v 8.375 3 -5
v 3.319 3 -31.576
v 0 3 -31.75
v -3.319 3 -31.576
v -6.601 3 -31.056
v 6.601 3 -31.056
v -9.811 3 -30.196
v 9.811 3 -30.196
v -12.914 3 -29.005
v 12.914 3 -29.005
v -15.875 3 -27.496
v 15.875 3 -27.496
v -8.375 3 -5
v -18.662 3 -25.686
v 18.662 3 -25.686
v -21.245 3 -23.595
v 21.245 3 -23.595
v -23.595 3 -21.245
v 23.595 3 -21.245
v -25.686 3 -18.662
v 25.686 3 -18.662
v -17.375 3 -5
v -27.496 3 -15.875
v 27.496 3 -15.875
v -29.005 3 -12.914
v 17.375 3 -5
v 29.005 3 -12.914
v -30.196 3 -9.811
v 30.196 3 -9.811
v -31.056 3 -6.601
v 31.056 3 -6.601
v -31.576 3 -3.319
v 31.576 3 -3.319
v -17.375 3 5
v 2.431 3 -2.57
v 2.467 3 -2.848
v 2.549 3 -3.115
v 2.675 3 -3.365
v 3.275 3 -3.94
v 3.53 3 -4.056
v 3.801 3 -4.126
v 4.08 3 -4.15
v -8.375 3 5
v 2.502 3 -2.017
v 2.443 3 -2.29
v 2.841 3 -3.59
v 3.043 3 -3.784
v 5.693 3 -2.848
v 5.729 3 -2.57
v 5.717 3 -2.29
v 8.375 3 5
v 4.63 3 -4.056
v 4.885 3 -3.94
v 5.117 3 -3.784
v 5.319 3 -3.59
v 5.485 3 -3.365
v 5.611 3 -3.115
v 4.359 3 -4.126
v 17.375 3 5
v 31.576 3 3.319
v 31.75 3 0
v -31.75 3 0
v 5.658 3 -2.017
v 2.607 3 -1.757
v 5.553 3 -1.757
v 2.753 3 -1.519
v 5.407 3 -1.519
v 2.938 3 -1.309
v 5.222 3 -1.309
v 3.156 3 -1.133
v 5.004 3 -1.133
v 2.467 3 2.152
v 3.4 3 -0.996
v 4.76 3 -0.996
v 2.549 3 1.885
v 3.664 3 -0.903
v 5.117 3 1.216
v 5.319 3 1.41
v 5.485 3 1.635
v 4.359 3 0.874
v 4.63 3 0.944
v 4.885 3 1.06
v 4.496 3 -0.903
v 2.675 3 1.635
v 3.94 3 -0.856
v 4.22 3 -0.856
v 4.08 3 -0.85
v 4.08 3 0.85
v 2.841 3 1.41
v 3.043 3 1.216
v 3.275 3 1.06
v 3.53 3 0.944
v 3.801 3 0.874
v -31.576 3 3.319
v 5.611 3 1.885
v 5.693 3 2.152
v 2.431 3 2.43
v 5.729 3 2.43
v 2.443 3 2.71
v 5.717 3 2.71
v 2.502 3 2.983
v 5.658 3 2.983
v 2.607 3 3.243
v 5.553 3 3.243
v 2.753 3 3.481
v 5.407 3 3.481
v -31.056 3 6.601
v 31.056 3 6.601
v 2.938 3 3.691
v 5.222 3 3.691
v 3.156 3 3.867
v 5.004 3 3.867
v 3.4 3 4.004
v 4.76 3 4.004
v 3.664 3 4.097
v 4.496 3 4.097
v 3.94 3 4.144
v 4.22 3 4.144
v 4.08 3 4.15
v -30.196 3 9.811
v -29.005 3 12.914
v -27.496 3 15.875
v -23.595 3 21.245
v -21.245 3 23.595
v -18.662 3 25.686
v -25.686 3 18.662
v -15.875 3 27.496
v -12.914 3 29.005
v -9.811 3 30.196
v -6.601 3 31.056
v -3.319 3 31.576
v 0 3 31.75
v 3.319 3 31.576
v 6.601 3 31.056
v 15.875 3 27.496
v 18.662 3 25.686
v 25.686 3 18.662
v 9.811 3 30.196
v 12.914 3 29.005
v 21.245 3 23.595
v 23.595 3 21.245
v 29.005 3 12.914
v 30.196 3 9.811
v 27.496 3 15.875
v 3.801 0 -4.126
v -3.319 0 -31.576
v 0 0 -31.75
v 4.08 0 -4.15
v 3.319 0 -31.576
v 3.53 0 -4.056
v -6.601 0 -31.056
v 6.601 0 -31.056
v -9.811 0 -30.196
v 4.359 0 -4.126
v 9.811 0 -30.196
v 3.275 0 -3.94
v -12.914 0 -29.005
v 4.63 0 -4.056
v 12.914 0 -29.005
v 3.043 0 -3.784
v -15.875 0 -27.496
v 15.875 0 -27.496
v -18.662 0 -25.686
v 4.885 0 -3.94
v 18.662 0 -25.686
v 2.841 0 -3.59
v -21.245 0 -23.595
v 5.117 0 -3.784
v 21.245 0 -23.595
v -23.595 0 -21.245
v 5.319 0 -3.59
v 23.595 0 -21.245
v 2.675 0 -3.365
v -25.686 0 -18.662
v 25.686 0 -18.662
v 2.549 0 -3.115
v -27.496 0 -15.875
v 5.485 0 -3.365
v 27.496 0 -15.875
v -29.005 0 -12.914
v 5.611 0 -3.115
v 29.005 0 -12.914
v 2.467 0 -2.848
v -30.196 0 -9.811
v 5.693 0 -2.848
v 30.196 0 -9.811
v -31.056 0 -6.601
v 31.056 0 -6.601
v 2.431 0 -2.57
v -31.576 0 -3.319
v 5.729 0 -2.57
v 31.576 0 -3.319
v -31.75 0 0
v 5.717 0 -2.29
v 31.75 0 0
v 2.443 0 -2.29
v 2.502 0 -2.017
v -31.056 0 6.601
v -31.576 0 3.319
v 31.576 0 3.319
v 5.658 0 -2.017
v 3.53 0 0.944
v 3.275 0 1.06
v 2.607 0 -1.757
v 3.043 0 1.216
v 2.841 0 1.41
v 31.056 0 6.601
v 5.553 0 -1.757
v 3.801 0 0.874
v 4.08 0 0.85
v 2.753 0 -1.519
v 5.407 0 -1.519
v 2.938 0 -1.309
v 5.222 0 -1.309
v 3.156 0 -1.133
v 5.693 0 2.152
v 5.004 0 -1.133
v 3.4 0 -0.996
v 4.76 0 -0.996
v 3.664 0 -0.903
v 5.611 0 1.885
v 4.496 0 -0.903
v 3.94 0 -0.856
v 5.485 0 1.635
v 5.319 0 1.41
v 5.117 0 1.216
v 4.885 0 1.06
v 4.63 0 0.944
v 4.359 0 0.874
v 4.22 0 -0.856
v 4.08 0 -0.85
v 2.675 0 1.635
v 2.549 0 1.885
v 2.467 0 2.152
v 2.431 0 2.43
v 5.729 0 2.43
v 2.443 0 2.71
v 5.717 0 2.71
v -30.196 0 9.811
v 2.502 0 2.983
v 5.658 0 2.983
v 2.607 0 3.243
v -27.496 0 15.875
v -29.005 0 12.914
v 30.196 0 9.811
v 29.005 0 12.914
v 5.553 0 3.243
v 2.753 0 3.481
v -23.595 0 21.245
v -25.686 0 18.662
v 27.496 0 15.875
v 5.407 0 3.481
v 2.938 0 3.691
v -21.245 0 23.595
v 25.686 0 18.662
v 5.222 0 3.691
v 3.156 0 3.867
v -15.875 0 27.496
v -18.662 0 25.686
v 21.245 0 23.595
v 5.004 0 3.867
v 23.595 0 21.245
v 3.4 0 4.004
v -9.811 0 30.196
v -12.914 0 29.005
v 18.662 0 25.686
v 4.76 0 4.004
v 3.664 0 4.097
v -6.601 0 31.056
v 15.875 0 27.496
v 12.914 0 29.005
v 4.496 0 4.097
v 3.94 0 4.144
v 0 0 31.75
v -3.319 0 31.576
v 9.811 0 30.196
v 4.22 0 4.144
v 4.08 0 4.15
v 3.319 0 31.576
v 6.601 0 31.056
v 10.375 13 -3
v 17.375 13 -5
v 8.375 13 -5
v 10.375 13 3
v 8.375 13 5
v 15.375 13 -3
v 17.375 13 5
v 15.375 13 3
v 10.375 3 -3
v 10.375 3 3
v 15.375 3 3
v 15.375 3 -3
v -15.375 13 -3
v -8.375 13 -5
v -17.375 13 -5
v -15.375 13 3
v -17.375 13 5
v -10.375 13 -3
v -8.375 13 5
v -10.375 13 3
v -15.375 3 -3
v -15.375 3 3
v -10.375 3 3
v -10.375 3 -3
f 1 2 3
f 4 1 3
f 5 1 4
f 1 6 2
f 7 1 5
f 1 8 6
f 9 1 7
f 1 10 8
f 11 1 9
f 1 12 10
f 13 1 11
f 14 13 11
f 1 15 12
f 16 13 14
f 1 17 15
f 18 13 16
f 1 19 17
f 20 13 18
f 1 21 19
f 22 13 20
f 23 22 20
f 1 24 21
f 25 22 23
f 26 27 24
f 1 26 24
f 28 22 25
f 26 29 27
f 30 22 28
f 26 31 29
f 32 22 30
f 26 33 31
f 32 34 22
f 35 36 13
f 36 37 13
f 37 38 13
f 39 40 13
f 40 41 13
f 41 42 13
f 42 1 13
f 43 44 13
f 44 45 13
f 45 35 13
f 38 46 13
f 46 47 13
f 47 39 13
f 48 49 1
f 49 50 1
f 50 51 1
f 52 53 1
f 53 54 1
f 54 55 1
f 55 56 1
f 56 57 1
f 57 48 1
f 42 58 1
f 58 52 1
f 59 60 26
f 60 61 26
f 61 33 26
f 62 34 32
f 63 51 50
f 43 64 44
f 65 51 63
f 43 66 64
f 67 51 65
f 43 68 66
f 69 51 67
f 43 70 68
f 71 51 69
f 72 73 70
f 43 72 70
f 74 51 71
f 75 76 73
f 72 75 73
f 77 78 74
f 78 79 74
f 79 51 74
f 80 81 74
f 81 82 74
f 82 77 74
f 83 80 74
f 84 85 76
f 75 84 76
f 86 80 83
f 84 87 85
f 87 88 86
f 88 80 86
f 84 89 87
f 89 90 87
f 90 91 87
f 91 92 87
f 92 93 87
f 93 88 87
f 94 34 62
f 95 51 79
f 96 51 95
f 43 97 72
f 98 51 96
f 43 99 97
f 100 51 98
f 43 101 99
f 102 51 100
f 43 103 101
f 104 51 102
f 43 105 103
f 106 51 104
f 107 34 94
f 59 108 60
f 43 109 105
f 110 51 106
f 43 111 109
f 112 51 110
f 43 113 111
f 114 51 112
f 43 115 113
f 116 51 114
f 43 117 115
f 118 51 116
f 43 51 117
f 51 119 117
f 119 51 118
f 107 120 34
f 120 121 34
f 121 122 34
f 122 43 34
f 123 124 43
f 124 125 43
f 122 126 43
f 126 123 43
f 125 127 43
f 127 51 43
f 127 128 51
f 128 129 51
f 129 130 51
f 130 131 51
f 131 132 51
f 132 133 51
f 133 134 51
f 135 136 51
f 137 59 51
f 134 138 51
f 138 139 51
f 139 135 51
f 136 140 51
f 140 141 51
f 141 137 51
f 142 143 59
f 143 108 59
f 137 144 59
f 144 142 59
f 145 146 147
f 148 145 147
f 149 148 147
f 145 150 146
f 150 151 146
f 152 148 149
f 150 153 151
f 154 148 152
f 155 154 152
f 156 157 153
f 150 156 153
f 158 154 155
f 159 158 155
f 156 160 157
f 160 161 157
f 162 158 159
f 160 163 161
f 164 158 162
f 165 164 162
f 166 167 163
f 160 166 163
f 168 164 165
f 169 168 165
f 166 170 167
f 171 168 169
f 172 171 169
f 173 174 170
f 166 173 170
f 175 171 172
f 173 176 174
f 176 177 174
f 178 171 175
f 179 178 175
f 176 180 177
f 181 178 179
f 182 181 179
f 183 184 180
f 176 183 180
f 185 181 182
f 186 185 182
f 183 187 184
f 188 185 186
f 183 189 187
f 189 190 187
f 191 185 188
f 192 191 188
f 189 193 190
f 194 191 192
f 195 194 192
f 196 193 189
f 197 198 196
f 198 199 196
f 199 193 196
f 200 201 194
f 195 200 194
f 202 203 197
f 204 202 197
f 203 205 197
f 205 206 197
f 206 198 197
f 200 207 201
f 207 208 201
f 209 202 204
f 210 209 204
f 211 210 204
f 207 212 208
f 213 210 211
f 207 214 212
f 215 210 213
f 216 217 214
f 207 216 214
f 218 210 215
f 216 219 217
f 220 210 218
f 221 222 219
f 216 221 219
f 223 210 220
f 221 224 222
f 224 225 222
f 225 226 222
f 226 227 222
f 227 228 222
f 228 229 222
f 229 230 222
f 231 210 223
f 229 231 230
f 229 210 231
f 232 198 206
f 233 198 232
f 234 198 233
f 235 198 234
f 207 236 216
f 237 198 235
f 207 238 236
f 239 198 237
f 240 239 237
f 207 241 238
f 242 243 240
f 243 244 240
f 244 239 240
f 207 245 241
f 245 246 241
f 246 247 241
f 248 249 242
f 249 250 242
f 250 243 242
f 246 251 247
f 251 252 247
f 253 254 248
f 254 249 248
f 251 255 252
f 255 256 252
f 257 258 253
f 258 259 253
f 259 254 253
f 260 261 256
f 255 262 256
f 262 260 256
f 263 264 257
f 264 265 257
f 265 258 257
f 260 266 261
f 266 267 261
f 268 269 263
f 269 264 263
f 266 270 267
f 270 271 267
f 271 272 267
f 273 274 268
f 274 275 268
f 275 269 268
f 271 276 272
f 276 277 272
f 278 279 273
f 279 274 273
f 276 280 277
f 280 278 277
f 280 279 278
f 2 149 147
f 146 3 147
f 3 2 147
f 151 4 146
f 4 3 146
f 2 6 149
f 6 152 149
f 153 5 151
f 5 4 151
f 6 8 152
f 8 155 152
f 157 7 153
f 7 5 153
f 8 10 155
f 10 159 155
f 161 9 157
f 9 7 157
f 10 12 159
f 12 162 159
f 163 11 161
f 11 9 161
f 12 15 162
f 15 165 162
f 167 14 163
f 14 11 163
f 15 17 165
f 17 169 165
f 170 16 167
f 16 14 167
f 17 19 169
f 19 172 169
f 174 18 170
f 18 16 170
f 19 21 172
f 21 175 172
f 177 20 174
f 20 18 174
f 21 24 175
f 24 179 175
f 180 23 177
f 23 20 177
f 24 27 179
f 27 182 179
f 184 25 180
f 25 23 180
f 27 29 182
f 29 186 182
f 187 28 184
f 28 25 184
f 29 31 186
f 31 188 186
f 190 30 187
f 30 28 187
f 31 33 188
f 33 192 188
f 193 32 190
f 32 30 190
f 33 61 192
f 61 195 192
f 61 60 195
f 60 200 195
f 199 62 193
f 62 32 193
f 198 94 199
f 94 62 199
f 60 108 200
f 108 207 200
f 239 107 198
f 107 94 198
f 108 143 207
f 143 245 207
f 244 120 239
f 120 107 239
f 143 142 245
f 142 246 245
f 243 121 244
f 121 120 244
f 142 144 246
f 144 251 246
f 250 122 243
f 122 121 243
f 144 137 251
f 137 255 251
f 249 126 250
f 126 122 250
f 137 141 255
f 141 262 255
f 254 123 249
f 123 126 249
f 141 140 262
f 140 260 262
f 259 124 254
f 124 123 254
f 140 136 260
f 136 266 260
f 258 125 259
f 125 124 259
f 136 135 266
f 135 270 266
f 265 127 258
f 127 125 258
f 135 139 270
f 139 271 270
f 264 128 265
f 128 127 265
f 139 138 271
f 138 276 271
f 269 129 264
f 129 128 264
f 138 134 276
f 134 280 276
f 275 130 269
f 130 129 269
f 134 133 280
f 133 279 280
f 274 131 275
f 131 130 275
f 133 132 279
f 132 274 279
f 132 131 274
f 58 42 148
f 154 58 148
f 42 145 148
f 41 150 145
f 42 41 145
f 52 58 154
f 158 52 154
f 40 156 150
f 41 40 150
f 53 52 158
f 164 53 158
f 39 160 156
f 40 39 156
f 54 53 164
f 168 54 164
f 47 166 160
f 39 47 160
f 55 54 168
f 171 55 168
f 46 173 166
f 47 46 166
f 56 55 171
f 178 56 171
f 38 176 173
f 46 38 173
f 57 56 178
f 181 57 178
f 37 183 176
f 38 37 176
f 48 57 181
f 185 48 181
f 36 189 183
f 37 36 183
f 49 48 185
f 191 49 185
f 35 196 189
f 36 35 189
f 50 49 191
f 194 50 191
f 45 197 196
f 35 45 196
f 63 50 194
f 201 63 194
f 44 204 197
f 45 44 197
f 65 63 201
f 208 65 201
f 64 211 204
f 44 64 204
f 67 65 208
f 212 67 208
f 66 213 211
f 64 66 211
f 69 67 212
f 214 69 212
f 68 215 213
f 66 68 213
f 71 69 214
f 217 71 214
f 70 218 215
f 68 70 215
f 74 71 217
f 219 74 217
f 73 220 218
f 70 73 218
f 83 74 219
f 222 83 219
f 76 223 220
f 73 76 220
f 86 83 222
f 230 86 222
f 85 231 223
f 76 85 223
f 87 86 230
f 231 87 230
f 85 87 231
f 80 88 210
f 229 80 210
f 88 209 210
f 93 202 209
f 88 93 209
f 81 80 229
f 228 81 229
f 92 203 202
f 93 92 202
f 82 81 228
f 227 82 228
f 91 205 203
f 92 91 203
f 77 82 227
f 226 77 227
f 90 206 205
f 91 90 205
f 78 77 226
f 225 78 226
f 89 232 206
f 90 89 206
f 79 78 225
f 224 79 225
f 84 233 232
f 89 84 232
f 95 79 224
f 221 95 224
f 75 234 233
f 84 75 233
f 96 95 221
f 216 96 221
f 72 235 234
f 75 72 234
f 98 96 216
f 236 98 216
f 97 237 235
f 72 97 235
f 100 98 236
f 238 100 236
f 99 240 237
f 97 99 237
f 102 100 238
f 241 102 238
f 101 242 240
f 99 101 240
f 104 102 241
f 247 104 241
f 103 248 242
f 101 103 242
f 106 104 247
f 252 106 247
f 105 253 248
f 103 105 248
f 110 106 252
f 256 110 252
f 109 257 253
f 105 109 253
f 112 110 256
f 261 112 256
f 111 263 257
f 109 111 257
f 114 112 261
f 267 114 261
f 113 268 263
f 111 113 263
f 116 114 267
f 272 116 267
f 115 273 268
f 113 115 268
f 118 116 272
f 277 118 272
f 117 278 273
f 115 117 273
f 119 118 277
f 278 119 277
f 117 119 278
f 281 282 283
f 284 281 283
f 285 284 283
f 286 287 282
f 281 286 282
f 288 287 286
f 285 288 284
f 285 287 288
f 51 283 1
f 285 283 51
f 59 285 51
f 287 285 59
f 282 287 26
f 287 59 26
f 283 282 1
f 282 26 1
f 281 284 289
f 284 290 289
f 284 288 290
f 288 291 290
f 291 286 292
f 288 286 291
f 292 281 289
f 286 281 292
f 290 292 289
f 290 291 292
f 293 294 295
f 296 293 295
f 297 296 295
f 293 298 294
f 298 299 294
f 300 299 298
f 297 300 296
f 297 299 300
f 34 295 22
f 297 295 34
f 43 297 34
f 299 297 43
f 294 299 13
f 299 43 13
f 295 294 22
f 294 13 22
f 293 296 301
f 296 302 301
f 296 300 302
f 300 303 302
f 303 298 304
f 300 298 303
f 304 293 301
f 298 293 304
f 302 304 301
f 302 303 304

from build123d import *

# Parameters (mm, degrees)
SKETCH1_R           = 31.75
SKETCH1_R_2         = 1.65
BOSS_EXTRUDE1_DEPTH = 3
SKETCH2_W           = 9
SKETCH2_H           = 10
SKETCH2_W_2         = 5
SKETCH2_H_2         = 6
BOSS_EXTRUDE2_DEPTH = 10


with BuildPart() as part:
    # Sketch1 → Boss-Extrude1 (new body)
    with BuildSketch(Plane(origin=(0, 0, 0), x_dir=(1, 0, 0), z_dir=(0, 1, 0))):
        with Locations(Location((0, 0, 0), (0, 0, 270))):
            Circle(SKETCH1_R)
        with Locations(Location((4.08, 2.5, 0), (0, 0, 270))):
            Circle(SKETCH1_R_2, mode=Mode.SUBTRACT)
        with Locations(Location((4.08, -2.5, 0), (0, 0, 270))):
            Circle(SKETCH1_R_2, mode=Mode.SUBTRACT)
    extrude(amount=BOSS_EXTRUDE1_DEPTH)

    # Sketch2 → Boss-Extrude2 (add)
    # profile 1 of 2: a face of its own
    with BuildSketch(Plane(origin=(0, 3, 0), x_dir=(1, 0, 0), z_dir=(0, 1, 0))):
        with Locations((12.875, 0)):
            Rectangle(SKETCH2_W, SKETCH2_H)
        with Locations((12.875, 0)):
            Rectangle(SKETCH2_W_2, SKETCH2_H_2, mode=Mode.SUBTRACT)
    # profile 2 of 2: a face of its own
    with BuildSketch(Plane(origin=(0, 3, 0), x_dir=(1, 0, 0), z_dir=(0, 1, 0))):
        with Locations((-12.875, 0)):
            Rectangle(SKETCH2_W, SKETCH2_H)
        with Locations((-12.875, 0)):
            Rectangle(SKETCH2_W_2, SKETCH2_H_2, mode=Mode.SUBTRACT)
    extrude(amount=BOSS_EXTRUDE2_DEPTH)


solid = part.part
